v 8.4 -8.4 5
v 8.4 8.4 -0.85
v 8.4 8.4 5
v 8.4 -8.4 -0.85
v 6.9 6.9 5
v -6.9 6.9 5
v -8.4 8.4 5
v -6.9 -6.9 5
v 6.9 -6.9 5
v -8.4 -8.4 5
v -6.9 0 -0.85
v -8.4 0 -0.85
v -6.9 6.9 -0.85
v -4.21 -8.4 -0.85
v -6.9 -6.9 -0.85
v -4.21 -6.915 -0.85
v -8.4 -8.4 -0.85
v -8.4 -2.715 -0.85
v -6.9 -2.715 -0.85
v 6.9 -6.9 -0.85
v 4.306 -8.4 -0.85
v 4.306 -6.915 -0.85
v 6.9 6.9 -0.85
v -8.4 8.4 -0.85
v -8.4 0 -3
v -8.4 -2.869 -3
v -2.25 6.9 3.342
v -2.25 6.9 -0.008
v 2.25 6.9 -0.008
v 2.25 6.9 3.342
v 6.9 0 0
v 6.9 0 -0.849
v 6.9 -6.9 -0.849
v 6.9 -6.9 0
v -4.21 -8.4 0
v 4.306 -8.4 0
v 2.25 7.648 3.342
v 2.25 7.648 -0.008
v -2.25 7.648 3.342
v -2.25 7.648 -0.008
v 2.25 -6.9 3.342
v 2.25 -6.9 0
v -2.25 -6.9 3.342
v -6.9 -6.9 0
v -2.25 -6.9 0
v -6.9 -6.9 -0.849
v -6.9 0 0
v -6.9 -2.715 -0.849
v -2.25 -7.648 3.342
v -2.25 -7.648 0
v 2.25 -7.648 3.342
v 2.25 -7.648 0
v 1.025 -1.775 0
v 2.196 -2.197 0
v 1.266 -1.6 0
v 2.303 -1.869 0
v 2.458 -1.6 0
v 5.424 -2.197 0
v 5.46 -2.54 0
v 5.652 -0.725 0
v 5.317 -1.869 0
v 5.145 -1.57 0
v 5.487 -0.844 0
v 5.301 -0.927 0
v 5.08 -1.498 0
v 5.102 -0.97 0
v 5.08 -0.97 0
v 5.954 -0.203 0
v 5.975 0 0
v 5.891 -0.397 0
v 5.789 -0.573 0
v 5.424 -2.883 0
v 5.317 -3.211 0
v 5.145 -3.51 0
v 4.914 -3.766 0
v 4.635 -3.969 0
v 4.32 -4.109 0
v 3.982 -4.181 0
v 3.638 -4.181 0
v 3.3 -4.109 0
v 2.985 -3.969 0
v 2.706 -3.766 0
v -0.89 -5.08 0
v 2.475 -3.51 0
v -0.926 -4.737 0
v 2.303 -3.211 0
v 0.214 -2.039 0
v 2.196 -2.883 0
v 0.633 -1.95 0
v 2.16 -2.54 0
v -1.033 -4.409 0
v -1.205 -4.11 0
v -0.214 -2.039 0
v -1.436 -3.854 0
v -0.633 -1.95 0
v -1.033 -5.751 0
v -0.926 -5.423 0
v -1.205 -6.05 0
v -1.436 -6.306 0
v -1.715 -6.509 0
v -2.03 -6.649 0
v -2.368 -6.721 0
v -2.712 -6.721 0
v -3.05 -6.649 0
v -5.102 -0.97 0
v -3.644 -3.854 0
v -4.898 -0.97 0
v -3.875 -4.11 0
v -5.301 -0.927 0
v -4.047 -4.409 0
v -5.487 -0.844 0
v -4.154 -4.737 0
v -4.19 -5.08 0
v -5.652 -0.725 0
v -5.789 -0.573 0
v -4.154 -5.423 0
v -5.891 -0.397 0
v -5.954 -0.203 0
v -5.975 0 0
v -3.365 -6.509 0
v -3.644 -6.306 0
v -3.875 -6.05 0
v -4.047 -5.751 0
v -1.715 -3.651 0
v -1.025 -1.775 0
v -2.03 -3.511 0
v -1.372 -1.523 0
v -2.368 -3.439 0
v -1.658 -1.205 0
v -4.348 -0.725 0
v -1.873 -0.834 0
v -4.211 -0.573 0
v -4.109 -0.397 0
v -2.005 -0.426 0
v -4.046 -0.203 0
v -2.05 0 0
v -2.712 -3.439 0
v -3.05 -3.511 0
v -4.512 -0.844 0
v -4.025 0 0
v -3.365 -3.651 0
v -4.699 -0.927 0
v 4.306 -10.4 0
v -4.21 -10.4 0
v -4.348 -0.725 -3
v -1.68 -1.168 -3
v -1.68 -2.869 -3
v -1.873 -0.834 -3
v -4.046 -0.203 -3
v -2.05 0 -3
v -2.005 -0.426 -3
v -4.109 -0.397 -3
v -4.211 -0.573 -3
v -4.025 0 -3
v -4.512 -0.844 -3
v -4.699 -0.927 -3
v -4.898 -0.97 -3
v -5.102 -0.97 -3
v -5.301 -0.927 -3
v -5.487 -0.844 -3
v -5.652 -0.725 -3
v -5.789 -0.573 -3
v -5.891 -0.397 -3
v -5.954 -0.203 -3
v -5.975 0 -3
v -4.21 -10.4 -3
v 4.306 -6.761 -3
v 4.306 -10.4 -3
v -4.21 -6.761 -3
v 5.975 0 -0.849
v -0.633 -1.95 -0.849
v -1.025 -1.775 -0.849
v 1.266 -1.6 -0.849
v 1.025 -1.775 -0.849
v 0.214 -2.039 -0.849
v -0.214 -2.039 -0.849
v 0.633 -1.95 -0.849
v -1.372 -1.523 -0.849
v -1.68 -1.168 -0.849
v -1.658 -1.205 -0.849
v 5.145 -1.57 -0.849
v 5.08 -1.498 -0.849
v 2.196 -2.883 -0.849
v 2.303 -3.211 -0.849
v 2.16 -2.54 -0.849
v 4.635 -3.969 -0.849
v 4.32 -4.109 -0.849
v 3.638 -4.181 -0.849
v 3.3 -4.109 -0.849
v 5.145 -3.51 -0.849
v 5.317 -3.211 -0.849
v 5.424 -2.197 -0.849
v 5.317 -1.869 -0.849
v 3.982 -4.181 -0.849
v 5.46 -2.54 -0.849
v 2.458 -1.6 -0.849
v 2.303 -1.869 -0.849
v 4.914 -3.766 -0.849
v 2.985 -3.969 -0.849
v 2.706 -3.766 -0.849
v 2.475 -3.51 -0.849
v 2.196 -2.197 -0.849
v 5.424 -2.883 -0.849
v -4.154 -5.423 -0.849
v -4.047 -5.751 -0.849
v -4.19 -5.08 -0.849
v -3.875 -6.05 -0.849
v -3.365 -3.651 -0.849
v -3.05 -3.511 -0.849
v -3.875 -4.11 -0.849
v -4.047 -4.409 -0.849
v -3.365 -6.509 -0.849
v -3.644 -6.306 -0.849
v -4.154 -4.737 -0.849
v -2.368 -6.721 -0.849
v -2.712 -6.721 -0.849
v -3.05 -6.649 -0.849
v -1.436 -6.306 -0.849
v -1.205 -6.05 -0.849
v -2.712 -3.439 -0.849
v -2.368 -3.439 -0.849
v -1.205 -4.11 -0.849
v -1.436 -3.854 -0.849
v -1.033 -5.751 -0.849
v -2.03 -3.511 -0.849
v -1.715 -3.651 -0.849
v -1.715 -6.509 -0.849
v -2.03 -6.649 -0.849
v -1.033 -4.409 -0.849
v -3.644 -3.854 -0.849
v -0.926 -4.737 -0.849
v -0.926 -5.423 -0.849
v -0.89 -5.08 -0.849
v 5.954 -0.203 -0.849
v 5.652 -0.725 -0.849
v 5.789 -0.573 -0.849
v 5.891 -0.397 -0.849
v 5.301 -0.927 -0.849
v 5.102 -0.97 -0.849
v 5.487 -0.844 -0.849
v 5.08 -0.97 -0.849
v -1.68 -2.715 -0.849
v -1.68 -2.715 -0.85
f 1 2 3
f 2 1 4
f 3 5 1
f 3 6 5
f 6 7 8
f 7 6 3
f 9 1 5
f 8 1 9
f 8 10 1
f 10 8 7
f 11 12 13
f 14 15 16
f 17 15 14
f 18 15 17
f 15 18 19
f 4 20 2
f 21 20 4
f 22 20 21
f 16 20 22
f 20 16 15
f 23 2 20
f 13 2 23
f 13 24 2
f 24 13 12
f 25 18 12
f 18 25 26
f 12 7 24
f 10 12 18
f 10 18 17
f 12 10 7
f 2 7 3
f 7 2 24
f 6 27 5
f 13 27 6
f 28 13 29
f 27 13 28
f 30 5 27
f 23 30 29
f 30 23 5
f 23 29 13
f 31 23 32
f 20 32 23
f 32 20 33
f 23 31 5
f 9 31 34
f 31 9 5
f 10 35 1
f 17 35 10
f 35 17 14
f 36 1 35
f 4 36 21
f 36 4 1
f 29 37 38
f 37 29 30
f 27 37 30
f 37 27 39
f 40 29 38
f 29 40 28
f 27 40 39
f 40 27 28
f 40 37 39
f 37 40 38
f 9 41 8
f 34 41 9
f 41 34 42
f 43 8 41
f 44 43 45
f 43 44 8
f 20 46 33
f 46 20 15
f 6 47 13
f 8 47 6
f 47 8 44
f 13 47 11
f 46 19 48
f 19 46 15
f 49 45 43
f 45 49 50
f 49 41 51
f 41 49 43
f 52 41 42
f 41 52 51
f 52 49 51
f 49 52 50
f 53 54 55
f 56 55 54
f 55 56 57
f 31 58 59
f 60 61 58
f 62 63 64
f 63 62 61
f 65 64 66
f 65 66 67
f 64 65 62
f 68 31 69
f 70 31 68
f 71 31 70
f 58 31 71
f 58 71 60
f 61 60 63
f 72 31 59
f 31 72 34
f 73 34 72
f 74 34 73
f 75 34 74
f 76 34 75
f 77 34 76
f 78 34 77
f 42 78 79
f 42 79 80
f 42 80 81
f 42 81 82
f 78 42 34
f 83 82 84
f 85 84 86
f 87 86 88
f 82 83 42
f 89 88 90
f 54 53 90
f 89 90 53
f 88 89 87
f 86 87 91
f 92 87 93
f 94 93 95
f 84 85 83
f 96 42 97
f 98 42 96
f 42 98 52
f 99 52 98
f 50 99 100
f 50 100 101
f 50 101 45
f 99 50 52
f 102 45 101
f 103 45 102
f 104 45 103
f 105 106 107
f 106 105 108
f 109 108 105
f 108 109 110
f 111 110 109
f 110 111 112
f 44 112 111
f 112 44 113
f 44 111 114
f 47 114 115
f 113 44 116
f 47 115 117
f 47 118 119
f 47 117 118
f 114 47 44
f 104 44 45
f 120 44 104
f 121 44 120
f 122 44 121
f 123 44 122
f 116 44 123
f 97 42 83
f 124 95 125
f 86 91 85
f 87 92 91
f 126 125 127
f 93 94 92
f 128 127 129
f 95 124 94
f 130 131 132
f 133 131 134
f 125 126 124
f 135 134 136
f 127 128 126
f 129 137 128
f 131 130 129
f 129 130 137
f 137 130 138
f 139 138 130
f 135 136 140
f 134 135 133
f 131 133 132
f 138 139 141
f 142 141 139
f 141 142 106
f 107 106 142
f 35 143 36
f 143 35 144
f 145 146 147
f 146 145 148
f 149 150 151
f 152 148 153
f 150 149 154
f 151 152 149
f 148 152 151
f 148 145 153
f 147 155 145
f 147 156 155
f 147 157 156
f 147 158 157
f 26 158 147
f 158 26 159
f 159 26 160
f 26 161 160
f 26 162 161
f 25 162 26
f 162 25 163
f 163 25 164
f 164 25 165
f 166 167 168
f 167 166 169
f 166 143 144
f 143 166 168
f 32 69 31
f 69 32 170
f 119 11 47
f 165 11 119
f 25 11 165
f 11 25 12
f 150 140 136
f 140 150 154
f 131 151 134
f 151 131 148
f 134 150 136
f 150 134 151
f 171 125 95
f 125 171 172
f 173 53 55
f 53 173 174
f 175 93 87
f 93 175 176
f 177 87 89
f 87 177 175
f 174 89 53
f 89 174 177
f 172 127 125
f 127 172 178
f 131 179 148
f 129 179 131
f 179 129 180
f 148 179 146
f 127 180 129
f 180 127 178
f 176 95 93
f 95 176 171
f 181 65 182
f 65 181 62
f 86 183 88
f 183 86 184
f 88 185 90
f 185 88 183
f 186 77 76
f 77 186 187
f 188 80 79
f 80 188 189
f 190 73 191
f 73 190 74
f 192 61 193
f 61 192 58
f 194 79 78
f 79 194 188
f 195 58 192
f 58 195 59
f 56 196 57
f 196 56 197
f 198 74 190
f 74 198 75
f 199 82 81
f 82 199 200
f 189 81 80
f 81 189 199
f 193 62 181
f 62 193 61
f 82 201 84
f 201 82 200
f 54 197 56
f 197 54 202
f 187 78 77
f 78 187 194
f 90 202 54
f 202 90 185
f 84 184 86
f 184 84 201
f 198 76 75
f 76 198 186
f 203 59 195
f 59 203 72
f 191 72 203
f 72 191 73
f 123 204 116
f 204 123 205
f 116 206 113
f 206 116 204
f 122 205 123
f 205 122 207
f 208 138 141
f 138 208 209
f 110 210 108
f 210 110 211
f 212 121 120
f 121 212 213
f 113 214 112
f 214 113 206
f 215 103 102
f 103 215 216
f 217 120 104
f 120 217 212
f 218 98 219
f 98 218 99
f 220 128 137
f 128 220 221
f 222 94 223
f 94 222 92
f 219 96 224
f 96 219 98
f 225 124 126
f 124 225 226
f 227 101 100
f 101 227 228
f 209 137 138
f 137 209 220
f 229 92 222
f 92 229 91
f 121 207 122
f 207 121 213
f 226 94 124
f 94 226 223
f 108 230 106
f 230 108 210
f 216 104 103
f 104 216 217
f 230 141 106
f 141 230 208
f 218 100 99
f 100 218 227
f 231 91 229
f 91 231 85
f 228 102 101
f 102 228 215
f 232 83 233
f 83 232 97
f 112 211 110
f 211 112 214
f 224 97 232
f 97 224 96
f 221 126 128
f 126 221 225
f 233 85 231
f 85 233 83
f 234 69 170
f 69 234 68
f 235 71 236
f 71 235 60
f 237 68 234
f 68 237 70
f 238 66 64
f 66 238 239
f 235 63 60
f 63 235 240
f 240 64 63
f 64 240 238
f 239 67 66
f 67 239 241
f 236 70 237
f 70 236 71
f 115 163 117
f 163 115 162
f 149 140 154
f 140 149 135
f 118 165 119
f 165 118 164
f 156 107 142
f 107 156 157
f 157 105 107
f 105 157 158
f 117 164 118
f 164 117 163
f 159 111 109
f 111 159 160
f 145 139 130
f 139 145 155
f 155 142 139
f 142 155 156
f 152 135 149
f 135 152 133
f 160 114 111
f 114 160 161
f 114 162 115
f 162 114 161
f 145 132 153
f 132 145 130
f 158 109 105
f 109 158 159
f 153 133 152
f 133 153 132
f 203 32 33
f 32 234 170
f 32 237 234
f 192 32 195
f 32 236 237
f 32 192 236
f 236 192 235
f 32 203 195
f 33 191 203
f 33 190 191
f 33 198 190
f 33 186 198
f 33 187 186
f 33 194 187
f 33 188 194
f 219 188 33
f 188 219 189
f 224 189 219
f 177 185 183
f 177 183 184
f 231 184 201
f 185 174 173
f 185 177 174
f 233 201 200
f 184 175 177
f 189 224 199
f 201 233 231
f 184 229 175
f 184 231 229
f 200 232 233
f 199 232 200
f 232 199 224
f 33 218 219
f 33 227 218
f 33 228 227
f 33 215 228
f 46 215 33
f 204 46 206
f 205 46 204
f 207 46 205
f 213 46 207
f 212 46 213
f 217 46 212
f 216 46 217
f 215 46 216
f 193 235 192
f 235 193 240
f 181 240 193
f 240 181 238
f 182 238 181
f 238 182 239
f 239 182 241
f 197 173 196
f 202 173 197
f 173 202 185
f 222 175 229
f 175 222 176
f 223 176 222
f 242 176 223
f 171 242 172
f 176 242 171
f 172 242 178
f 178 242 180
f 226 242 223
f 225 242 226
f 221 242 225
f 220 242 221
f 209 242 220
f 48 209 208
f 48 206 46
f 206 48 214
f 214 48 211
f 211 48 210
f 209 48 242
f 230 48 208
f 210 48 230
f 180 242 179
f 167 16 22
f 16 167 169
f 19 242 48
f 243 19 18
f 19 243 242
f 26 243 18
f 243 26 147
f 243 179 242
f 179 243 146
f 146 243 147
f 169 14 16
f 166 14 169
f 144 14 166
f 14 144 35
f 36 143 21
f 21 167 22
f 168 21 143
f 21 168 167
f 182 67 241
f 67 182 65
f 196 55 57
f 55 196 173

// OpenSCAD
union () {
  union () {
    difference () {
      union () {
        translate ([0, 7.65, 2.075]) {
          cube ([16.8, 1.5, 5.85], center=true);
        }
        translate ([7.65, 0, 2.075]) {
          cube ([1.5, 16.8, 5.85], center=true);
        }
      }
      translate ([0, 7.27313432835821, 1.6665829145728641]) {
        cube ([4.5, 0.75, 3.35], center=true);
      }
    }
    mirror ([0, 1, 0]) {
      mirror ([1, 0, 0]) {
        difference () {
          union () {
            translate ([0, 7.65, 2.075]) {
              cube ([16.8, 1.5, 5.85], center=true);
            }
            translate ([7.65, 0, 2.075]) {
              cube ([1.5, 16.8, 5.85], center=true);
            }
          }
          translate ([0, 7.27313432835821, 1.6665829145728641]) {
            cube ([4.5, 0.75, 3.35], center=true);
          }
        }
      }
    }
    mirror ([0, 1, 0]) {
      mirror ([1, 0, 0]) {
        difference () {
          translate ([0, 5.2, -3/2]) {
            cube ([16.8, 10.4, 3], center=true);
          }
          cylinder ($fn=30, h=10, r=2.05, center=true);
          translate ([-3.81, 2.54, 0]) {
            cylinder ($fn=30, h=10, r=1.65, center=true);
          }
          translate ([2.54, 5.08, 0]) {
            cylinder ($fn=30, h=10, r=1.65, center=true);
          }
          translate ([-5, 0, 0]) {
            cylinder ($fn=30, h=10, r=0.975, center=true);
          }
          translate ([5, 0, 0]) {
            cylinder ($fn=30, h=10, r=0.975, center=true);
          }
          translate ([0, 4.815, -4.35]) {
            hull () {
              linear_extrude (height=0.001, twist=0.0, convexity=0, center=true){
                square ([16.8, 3.6999999999999997], center=true);
              }
              translate ([0, 0, 3.5]) {
                linear_extrude (height=0.001, twist=0.0, convexity=0, center=true){
                  square ([16.8, 4.199999999999999], center=true);
                }
              }
            }
          }
          translate ([-3.5, 1.815, -4.35]) {
            hull () {
              linear_extrude (height=0.001, twist=0.0, convexity=0, center=true){
                square ([10.360000000000001, 5.699999999999999], center=true);
              }
              translate ([0, 0, 3.5]) {
                linear_extrude (height=0.001, twist=0.0, convexity=0, center=true){
                  square ([10.360000000000001, 6.199999999999999], center=true);
                }
              }
            }
          }
          translate ([6.31044776119403, 9.4, -2.6]) {
            cube ([4.2, 6, 3.5], center=true);
          }
          translate ([-6.405640564056405, 9.4, -2.6]) {
            cube ([4.2, 6, 3.5], center=true);
          }
          translate ([0, 2, 0.85]) {
            translate ([6.31044776119403, 9.4, -2.6]) {
              cube ([4.2, 6, 3.5], center=true);
            }
          }
          translate ([0, 2, 0.85]) {
            translate ([-6.405640564056405, 9.4, -2.6]) {
              cube ([4.2, 6, 3.5], center=true);
            }
          }
          translate ([-5.08, 0, 0]) {
            translate ([2, -0.4, 0]) {
              cube ([4, 4, 10], center=true);
            }
          }
          translate ([0, -6, -2.6]) {
            cube ([6, 6, 10], center=true);
          }
        }
      }
    }
  }
}
